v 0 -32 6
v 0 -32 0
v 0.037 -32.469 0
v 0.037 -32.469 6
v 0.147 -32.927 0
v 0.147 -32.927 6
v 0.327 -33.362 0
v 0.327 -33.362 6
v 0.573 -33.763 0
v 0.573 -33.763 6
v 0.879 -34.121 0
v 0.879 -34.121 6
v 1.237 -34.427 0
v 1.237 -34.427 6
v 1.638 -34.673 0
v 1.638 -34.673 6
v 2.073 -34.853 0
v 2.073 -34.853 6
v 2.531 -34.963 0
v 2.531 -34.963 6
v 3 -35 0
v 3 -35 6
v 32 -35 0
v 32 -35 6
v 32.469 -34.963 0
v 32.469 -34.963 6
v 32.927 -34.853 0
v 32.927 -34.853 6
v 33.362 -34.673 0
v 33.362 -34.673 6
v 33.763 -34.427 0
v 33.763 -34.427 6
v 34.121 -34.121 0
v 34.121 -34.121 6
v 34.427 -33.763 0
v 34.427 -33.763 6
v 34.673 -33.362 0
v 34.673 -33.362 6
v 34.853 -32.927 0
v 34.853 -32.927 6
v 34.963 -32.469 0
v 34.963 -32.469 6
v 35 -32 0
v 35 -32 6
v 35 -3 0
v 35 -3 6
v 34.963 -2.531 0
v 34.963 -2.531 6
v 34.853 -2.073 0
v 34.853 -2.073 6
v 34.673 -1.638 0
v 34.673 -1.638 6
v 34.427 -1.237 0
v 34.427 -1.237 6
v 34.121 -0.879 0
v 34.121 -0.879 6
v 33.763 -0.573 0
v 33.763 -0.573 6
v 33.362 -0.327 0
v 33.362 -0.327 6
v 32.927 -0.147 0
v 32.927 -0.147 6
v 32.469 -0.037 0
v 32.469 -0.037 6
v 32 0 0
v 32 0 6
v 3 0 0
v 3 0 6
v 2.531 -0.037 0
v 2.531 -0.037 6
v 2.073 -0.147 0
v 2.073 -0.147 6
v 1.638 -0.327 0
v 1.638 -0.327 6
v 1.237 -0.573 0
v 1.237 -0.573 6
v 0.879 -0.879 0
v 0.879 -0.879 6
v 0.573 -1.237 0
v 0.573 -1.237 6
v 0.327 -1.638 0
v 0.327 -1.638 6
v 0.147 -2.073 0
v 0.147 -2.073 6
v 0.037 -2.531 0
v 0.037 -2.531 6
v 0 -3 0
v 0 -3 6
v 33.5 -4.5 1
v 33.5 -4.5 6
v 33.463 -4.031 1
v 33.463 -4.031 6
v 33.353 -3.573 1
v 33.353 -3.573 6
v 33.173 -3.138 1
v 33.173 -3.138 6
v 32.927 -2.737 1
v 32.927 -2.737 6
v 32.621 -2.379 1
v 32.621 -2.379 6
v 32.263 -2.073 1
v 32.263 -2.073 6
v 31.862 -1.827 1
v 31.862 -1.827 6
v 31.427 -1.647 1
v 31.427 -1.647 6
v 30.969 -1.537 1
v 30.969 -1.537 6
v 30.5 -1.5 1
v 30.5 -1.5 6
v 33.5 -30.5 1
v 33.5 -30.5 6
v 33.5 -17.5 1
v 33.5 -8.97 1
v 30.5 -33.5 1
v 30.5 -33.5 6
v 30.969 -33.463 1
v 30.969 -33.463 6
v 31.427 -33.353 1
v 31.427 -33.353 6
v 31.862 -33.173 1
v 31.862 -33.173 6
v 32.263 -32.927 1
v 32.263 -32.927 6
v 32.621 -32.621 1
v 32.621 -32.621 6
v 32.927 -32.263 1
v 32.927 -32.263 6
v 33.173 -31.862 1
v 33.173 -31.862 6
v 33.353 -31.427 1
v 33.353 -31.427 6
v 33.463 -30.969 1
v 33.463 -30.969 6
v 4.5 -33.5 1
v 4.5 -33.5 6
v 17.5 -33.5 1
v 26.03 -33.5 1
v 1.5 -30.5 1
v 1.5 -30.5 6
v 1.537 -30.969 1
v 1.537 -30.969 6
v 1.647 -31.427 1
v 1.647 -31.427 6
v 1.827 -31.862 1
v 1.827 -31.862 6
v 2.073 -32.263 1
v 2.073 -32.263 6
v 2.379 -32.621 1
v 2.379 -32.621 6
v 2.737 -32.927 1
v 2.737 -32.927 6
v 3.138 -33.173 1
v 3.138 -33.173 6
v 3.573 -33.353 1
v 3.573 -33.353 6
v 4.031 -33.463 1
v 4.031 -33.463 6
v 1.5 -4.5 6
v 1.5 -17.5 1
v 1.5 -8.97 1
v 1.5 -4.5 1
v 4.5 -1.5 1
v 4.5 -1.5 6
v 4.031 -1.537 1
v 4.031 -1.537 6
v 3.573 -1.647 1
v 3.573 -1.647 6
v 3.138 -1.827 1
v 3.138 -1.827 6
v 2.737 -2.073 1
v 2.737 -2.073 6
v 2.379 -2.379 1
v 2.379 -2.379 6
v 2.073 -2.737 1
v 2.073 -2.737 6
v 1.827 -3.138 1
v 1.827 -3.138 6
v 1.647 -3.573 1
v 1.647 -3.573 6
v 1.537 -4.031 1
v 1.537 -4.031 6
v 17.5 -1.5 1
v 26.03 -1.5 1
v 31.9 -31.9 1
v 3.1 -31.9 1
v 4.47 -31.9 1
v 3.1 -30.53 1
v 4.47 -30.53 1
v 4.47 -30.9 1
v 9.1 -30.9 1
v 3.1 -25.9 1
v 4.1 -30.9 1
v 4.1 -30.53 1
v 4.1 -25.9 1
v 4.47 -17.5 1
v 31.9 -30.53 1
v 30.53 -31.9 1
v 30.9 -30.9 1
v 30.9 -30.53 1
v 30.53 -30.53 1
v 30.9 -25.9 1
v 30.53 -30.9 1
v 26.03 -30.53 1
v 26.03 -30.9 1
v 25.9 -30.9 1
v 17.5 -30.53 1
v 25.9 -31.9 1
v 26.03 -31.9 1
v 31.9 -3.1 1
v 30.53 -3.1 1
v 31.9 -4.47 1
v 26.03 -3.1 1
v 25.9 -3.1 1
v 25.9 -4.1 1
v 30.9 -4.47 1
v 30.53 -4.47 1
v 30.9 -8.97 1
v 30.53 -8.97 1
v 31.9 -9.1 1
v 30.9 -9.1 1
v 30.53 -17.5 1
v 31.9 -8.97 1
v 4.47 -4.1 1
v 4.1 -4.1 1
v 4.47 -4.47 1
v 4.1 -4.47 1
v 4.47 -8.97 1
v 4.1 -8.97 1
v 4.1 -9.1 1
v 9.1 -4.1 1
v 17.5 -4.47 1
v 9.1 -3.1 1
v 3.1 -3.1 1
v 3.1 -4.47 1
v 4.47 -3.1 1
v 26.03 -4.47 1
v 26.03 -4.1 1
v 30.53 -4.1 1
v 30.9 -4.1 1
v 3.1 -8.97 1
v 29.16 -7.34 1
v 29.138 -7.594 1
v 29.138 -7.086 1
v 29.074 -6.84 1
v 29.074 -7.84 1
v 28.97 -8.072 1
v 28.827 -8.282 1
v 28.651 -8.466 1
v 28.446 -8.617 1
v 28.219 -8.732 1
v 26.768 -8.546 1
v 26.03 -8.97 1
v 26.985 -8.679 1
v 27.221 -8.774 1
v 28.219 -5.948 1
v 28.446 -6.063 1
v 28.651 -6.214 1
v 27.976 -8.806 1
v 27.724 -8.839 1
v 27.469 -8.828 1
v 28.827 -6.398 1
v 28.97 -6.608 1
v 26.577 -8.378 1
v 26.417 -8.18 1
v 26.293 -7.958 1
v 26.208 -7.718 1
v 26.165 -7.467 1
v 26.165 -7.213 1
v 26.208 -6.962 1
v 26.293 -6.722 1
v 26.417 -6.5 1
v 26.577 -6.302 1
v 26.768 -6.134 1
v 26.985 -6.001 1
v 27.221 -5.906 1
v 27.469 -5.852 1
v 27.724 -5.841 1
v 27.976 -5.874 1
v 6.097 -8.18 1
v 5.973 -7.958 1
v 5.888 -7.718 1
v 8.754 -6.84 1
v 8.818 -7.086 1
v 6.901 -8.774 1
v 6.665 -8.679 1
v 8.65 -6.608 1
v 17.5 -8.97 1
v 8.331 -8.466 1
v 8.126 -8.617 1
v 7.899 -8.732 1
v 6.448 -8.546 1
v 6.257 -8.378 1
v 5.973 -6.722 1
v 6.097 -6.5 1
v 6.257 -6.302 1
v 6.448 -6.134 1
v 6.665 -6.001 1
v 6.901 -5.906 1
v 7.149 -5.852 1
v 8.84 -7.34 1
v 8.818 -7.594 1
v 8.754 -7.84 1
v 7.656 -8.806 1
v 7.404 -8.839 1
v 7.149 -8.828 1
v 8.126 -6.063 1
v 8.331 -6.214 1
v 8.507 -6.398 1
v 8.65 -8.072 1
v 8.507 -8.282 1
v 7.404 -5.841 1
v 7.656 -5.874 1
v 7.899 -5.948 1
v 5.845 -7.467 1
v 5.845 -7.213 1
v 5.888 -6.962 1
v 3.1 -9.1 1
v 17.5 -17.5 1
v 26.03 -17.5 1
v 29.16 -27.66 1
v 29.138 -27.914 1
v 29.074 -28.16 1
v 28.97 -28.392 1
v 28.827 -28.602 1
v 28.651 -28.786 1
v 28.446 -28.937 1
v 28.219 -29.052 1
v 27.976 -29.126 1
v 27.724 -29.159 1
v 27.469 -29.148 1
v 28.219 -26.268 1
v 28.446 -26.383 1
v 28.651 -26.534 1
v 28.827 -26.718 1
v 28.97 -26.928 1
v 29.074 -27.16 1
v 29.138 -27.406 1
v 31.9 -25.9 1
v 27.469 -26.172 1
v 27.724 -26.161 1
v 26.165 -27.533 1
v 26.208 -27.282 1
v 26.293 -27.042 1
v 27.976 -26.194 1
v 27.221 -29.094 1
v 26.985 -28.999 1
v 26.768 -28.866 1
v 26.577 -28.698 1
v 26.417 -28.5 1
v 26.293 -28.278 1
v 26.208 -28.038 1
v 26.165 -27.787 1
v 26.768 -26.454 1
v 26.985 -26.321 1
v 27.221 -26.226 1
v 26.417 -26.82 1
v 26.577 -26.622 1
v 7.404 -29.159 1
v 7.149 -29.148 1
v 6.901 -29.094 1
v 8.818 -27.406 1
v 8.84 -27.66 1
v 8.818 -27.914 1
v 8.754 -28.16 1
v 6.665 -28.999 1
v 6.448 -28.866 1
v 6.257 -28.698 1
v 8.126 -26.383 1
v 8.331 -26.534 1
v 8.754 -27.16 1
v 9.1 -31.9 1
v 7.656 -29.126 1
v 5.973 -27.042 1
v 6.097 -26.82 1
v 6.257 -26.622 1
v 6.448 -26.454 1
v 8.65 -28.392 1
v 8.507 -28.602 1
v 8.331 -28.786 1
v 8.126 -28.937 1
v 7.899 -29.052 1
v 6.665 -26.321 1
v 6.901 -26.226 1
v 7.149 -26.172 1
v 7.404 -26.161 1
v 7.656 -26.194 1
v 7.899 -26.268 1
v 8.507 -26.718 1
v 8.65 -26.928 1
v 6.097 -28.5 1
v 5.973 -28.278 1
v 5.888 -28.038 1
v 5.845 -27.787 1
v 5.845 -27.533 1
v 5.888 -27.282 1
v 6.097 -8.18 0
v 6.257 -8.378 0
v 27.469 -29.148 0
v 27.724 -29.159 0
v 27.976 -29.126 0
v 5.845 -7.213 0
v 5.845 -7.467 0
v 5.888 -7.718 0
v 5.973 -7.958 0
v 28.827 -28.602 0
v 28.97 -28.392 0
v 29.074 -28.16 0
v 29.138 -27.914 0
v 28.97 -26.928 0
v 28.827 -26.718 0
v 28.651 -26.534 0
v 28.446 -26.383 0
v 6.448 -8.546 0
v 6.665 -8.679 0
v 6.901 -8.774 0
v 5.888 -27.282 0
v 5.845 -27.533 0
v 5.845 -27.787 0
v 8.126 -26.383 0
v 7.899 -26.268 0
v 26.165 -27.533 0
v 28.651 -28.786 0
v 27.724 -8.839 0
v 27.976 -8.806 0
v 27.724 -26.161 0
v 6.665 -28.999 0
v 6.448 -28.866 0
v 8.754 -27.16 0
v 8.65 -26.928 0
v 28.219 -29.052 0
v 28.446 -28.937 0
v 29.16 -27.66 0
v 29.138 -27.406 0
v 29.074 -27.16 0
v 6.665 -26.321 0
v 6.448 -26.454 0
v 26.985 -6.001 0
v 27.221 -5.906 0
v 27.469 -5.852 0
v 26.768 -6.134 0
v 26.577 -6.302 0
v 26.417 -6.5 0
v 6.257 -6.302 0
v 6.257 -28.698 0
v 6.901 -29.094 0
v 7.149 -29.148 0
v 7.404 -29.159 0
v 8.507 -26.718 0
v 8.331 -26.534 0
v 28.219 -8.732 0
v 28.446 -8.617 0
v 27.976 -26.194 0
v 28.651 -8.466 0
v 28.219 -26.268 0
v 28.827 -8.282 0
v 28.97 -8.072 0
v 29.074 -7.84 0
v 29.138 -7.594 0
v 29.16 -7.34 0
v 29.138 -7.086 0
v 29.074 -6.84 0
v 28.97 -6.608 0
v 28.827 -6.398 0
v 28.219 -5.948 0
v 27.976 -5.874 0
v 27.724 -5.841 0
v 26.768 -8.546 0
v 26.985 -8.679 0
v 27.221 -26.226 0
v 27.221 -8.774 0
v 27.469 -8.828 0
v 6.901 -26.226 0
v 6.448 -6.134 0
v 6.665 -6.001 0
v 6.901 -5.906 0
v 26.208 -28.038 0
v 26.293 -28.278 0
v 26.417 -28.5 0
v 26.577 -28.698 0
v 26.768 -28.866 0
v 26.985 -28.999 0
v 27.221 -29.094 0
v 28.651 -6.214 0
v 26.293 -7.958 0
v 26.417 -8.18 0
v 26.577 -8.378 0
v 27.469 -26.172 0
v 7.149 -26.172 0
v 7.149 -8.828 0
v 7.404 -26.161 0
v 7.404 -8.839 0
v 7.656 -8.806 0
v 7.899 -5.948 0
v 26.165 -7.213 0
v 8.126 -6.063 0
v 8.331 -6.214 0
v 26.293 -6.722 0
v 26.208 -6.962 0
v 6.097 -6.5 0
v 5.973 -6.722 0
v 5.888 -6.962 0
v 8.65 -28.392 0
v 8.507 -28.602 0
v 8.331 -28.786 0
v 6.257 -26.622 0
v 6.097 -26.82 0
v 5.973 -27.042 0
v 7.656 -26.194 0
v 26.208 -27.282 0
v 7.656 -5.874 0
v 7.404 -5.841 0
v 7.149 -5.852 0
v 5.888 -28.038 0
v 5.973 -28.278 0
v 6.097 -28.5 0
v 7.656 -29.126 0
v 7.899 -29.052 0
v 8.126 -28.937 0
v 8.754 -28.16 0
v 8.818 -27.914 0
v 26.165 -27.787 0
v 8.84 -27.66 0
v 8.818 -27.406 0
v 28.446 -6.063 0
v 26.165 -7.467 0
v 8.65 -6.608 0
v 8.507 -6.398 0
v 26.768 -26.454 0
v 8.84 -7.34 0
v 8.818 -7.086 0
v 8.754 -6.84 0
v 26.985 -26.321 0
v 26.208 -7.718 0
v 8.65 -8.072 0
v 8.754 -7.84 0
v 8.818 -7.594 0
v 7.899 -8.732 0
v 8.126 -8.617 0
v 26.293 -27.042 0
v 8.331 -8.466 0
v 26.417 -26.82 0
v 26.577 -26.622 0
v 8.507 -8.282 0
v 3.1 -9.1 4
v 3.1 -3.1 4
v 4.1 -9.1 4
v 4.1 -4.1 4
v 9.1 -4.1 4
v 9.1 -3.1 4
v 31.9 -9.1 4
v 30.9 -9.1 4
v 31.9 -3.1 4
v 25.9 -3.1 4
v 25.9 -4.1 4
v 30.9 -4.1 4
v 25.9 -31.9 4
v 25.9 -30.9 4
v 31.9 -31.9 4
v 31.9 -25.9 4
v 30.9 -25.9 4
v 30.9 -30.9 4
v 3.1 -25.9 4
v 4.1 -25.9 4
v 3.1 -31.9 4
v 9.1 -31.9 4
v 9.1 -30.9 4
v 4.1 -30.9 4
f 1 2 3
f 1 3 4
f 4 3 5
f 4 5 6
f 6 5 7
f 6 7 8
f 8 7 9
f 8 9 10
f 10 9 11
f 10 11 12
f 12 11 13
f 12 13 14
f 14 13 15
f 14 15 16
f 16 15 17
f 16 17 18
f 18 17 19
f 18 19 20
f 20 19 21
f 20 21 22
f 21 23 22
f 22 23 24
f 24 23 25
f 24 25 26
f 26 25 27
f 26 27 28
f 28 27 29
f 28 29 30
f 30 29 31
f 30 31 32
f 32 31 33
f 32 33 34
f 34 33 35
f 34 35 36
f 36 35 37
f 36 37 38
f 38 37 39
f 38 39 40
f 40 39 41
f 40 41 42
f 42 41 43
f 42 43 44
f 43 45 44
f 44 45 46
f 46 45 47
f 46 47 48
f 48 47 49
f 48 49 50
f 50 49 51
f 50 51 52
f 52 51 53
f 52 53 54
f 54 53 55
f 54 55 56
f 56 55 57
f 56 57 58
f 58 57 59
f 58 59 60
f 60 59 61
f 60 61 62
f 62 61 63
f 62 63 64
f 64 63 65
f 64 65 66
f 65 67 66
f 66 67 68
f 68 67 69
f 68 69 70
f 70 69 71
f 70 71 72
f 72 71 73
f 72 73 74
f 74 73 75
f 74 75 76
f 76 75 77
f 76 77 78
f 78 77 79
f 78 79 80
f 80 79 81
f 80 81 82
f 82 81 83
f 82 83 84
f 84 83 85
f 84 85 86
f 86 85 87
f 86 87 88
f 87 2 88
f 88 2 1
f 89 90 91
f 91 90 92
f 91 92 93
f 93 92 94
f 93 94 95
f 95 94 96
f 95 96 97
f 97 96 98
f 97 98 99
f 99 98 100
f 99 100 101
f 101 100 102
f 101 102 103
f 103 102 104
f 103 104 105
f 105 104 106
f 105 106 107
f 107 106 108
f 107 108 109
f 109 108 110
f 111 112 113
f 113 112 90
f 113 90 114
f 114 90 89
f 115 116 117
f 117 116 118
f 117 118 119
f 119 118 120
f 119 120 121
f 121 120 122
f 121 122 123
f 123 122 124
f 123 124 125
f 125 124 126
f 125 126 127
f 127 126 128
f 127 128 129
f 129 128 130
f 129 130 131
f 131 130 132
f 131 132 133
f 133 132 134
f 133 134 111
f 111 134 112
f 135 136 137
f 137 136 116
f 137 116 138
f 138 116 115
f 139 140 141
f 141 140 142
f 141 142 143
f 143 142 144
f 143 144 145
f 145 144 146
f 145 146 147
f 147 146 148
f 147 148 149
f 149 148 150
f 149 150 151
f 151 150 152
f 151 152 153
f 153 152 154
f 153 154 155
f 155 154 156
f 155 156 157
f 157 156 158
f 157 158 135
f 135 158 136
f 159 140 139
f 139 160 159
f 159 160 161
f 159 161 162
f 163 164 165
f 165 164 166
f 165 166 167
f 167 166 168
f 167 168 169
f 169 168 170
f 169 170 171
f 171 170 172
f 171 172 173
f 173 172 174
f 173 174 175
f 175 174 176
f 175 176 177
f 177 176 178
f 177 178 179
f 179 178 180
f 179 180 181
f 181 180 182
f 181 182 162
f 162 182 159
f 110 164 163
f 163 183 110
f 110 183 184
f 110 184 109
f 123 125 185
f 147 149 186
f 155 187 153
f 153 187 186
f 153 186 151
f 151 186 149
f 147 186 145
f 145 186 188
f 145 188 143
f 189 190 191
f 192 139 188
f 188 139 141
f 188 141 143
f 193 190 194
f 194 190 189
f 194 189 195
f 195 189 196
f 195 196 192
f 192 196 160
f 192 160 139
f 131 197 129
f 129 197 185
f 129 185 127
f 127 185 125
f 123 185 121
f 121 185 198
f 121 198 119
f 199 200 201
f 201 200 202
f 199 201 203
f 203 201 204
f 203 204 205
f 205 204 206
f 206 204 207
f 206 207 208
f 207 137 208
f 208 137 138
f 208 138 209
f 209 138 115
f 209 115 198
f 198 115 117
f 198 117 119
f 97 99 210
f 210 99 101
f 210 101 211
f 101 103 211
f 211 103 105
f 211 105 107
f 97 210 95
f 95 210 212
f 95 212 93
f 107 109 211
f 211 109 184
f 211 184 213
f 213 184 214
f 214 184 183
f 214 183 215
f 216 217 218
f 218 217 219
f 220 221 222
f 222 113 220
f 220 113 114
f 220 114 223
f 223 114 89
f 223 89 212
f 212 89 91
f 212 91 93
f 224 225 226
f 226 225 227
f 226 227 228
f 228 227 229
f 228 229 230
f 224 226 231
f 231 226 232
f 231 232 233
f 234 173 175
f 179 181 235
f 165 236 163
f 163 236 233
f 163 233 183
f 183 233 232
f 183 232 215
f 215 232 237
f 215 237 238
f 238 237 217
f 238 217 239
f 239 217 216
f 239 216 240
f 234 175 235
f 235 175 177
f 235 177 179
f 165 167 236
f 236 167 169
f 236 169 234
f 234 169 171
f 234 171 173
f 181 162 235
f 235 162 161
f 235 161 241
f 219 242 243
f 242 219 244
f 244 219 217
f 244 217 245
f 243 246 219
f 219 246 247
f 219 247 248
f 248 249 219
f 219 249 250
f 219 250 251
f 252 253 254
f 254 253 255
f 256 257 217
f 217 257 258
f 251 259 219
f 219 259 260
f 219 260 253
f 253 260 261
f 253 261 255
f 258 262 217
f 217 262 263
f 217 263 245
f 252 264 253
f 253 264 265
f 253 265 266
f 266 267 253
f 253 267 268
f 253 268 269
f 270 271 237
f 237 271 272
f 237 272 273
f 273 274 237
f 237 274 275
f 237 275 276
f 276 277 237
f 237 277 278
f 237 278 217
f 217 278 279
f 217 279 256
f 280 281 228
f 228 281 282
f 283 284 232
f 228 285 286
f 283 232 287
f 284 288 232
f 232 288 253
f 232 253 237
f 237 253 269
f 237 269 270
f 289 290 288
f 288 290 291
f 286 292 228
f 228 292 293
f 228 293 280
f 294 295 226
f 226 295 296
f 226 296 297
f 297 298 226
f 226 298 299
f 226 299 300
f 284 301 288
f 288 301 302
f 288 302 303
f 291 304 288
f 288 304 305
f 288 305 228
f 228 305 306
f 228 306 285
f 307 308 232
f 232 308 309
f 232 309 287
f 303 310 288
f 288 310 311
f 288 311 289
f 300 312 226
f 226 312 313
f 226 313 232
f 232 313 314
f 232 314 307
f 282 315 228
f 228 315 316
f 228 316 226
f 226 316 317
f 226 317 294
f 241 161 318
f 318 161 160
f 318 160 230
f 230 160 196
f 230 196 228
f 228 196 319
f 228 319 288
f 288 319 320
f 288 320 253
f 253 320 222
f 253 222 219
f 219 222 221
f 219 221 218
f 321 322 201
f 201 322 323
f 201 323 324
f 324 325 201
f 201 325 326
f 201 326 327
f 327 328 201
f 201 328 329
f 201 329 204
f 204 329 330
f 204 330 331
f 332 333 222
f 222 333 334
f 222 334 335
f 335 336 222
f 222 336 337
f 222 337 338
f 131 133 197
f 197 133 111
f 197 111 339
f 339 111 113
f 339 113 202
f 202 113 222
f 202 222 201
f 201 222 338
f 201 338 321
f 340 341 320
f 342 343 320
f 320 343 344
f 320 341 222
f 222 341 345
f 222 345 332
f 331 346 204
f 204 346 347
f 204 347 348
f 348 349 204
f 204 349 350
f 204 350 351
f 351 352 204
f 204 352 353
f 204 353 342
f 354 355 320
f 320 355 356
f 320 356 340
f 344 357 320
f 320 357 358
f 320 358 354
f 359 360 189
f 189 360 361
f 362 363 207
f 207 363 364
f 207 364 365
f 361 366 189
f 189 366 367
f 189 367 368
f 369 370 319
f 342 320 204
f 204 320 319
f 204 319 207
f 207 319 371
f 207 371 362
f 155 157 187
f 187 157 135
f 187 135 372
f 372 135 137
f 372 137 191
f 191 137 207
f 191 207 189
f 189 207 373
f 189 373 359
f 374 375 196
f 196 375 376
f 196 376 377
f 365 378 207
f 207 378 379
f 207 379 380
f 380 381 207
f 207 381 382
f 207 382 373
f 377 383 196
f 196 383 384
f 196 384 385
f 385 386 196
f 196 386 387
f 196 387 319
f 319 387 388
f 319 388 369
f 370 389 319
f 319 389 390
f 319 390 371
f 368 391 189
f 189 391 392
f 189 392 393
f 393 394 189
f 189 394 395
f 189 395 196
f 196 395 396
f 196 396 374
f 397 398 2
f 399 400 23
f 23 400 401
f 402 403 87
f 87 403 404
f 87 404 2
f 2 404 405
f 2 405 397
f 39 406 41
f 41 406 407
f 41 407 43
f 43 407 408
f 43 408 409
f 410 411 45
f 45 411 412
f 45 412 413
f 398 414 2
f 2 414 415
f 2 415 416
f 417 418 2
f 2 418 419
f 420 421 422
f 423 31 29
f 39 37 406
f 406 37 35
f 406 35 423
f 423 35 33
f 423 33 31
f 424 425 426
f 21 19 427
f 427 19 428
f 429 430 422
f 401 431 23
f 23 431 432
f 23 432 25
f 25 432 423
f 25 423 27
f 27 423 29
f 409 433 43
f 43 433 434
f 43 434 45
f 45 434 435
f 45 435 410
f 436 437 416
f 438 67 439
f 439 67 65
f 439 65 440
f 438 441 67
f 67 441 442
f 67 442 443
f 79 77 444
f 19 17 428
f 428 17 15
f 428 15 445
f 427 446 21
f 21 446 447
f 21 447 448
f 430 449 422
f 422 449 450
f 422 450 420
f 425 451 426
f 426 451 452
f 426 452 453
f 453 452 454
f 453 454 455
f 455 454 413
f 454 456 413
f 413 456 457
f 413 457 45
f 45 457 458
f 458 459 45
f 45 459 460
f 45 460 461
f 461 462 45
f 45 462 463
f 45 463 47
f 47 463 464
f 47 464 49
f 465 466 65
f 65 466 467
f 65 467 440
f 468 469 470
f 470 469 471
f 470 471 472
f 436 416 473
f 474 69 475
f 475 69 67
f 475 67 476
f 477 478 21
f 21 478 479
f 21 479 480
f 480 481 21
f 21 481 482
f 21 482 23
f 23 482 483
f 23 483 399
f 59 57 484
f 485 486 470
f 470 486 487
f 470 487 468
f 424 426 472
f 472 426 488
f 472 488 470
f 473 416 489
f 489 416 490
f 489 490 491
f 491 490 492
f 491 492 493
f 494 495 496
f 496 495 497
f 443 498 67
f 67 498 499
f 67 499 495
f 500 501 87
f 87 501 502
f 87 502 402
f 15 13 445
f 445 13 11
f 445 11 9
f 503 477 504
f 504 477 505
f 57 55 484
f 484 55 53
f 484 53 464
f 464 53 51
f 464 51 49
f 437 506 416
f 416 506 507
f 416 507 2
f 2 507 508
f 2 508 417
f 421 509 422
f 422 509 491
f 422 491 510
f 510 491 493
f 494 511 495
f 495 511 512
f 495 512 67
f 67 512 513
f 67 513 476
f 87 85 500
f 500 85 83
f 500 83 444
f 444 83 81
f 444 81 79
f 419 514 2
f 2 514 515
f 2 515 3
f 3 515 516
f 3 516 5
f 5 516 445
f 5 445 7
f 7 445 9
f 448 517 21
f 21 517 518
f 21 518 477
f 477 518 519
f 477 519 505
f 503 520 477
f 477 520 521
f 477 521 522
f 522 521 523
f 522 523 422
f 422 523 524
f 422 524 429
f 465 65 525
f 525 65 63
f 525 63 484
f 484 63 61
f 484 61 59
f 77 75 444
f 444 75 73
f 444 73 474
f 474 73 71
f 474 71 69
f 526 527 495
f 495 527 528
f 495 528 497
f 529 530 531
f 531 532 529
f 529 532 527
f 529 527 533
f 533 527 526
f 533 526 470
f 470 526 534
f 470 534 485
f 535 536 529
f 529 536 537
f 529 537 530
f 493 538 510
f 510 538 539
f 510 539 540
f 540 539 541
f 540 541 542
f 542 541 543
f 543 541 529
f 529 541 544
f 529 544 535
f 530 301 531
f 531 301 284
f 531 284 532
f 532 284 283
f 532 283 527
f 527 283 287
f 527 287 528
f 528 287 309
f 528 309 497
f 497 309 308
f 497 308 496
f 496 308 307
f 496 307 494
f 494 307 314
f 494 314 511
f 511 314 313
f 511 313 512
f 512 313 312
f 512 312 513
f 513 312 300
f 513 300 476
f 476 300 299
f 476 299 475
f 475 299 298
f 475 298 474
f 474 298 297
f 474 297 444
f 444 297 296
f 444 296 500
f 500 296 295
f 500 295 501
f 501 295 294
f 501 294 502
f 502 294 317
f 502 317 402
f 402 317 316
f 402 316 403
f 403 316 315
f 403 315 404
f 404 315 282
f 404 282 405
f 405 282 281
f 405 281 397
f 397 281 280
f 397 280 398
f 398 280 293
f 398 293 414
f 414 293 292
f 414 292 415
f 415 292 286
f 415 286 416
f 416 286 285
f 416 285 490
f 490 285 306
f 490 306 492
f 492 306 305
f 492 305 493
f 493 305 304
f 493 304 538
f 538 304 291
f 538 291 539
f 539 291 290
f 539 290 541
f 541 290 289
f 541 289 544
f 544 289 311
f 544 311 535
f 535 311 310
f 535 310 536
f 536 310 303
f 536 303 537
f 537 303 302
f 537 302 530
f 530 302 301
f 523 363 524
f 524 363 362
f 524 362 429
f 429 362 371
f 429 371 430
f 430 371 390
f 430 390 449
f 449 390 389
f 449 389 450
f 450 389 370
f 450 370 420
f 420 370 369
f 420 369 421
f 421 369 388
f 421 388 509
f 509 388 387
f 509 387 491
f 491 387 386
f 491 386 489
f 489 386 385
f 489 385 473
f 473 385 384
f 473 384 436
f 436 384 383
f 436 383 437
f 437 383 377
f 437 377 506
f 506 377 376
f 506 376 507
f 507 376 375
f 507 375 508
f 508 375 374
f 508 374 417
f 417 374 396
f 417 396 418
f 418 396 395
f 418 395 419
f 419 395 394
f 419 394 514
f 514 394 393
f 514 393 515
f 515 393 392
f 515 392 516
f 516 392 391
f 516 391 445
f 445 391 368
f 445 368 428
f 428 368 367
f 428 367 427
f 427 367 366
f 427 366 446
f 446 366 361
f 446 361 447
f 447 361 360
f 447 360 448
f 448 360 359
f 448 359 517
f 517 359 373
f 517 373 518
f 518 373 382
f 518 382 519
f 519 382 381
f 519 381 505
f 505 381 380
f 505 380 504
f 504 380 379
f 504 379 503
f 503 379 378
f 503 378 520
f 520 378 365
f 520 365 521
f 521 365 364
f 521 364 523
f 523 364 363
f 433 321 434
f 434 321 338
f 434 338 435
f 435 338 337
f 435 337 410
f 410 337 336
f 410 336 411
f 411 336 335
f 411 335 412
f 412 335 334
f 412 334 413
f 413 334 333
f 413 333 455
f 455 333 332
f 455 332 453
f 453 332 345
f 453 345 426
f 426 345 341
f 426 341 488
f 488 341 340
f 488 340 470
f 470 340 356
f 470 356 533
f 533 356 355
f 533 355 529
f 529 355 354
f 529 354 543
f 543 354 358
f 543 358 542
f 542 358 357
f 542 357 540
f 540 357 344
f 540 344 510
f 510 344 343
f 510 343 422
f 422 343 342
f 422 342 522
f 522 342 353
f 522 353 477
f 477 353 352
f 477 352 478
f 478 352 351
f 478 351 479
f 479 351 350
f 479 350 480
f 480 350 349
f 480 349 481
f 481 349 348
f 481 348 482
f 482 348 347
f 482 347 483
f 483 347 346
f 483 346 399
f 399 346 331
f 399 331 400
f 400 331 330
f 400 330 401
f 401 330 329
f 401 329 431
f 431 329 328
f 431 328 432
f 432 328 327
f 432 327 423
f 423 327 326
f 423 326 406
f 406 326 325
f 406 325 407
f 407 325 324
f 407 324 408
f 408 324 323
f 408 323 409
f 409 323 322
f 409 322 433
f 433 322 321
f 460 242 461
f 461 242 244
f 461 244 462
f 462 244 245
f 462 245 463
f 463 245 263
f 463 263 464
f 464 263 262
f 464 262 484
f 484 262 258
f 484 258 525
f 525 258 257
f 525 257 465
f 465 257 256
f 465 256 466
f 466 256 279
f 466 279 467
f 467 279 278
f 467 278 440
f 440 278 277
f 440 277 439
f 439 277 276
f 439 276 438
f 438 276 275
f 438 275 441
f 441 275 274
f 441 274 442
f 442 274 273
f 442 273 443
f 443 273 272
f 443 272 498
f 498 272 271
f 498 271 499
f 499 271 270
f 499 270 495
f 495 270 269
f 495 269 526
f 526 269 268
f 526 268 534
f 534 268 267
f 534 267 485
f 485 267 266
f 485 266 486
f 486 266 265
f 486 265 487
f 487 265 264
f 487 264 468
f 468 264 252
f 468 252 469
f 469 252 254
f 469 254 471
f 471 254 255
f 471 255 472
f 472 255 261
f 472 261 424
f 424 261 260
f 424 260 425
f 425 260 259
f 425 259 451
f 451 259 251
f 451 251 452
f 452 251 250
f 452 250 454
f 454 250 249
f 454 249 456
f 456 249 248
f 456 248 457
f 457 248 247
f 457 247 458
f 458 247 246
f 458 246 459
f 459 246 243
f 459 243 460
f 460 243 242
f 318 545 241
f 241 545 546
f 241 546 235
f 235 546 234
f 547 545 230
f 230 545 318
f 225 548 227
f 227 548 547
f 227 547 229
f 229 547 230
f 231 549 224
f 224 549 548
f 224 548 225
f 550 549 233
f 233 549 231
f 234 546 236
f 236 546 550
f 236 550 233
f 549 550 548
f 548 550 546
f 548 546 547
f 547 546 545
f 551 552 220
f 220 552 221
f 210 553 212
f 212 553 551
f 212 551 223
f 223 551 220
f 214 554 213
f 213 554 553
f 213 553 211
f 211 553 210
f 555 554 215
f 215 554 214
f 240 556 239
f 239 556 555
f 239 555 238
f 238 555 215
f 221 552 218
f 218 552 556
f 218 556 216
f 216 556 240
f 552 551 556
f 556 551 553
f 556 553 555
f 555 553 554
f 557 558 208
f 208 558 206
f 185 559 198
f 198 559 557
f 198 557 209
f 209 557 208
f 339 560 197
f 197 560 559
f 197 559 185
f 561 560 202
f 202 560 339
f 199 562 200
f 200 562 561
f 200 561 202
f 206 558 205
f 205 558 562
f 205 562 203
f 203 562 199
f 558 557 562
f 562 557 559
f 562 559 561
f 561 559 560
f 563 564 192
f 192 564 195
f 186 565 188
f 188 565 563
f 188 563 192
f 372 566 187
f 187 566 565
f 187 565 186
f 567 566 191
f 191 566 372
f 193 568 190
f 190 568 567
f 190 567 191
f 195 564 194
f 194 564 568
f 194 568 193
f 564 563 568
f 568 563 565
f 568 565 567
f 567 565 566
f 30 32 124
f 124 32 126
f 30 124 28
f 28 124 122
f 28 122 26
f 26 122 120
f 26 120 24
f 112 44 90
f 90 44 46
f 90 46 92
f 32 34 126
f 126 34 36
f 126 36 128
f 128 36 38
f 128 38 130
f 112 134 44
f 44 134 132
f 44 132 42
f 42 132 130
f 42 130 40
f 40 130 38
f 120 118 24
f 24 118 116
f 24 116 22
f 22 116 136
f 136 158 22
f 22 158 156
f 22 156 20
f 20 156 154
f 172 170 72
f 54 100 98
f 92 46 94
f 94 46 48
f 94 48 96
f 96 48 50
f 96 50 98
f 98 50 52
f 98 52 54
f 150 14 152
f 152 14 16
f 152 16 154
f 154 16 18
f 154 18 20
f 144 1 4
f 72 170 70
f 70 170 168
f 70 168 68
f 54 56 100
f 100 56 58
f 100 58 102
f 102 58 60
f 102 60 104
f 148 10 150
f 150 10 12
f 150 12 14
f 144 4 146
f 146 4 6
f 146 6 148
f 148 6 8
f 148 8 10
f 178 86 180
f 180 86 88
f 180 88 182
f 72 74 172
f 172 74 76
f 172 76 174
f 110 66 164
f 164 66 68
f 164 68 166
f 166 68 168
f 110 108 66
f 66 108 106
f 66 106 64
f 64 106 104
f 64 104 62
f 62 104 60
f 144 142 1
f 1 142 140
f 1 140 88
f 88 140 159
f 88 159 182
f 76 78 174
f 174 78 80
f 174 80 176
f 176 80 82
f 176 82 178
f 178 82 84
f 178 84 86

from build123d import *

# Parameters (mm, degrees)
BOSS_EXTRUDE1_DEPTH = 10
CUT_EXTRUDE1_DEPTH  = 9
SKETCH5_R           = 1.5
CUT_EXTRUDE2_DEPTH  = 2
BOSS_EXTRUDE2_DEPTH = 3
SKETCH7_R           = 24.910226266
CUT_EXTRUDE5_DEPTH  = 4


with BuildPart() as part:
    # Sketch1 → Boss-Extrude1 (new body)
    with BuildSketch(Plane.XY):
        with BuildLine():
            Line((3, 0), (32, 0))
            ThreePointArc((32, 0), (34.121320344, -0.878679656), (35, -3))
            Line((35, -3), (35, -32))
            ThreePointArc((35, -32), (34.121320344, -34.121320344), (32, -35))
            Line((32, -35), (3, -35))
            ThreePointArc((3, -35), (0.878679656, -34.121320344), (0, -32))
            Line((0, -32), (0, -3))
            ThreePointArc((0, -3), (0.878679656, -0.878679656), (3, 0))
        make_face()
    extrude(amount=BOSS_EXTRUDE1_DEPTH)

    # Sketch2 → Cut-Extrude1 (cut)
    with BuildSketch(Plane.XY.offset(10)):
        with BuildLine():
            Line((1.5, -4.5), (1.5, -30.5))
            ThreePointArc((1.5, -30.5), (2.378679656, -32.621320344), (4.5, -33.5))
            Line((4.5, -33.5), (30.5, -33.5))
            ThreePointArc((30.5, -33.5), (32.621320344, -32.621320344), (33.5, -30.5))
            Line((33.5, -30.5), (33.5, -4.5))
            ThreePointArc((33.5, -4.5), (32.621320344, -2.378679656), (30.5, -1.5))
            Line((30.5, -1.5), (4.5, -1.5))
            ThreePointArc((4.5, -1.5), (2.378679656, -2.378679656), (1.5, -4.5))
        make_face()
    extrude(amount=-CUT_EXTRUDE1_DEPTH, mode=Mode.SUBTRACT)

    # Sketch5 → Cut-Extrude2 (cut, through all)
    with BuildSketch(Plane.XY.offset(1)):
        with Locations((7.34, -7.34)):
            Circle(SKETCH5_R)
        with Locations((7.34, -27.66)):
            Circle(SKETCH5_R)
        with Locations((27.66, -27.66)):
            Circle(SKETCH5_R)
        with Locations((27.66, -7.34)):
            Circle(SKETCH5_R)
    extrude(amount=-CUT_EXTRUDE2_DEPTH, mode=Mode.SUBTRACT)

    # Sketch3 → Boss-Extrude2 (add)
    with BuildSketch(Plane.XY.offset(1)):
        Polygon((3.1, -3.1), (3.1, -9.1), (4.1, -9.1), (4.1, -4.1), (9.1, -4.1), (9.1, -3.1), align=None)
        Polygon((30.9, -9.1), (31.9, -9.1), (31.9, -3.1), (25.9, -3.1), (25.9, -4.1), (30.9, -4.1), align=None)
        Polygon((25.9, -30.9), (25.9, -31.9), (31.9, -31.9), (31.9, -25.9), (30.9, -25.9), (30.9, -30.9), align=None)
        Polygon((3.1, -25.9), (3.1, -31.9), (9.1, -31.9), (9.1, -30.9), (4.1, -30.9), (4.1, -25.9), align=None)
    extrude(amount=BOSS_EXTRUDE2_DEPTH)

    # Sketch7 → Cut-Extrude5 (cut)
    with BuildSketch(Plane.XY.offset(10)):
        with Locations((16.498966125, -17.5)):
            Circle(SKETCH7_R)
    extrude(amount=-CUT_EXTRUDE5_DEPTH, mode=Mode.SUBTRACT)


solid = part.part
